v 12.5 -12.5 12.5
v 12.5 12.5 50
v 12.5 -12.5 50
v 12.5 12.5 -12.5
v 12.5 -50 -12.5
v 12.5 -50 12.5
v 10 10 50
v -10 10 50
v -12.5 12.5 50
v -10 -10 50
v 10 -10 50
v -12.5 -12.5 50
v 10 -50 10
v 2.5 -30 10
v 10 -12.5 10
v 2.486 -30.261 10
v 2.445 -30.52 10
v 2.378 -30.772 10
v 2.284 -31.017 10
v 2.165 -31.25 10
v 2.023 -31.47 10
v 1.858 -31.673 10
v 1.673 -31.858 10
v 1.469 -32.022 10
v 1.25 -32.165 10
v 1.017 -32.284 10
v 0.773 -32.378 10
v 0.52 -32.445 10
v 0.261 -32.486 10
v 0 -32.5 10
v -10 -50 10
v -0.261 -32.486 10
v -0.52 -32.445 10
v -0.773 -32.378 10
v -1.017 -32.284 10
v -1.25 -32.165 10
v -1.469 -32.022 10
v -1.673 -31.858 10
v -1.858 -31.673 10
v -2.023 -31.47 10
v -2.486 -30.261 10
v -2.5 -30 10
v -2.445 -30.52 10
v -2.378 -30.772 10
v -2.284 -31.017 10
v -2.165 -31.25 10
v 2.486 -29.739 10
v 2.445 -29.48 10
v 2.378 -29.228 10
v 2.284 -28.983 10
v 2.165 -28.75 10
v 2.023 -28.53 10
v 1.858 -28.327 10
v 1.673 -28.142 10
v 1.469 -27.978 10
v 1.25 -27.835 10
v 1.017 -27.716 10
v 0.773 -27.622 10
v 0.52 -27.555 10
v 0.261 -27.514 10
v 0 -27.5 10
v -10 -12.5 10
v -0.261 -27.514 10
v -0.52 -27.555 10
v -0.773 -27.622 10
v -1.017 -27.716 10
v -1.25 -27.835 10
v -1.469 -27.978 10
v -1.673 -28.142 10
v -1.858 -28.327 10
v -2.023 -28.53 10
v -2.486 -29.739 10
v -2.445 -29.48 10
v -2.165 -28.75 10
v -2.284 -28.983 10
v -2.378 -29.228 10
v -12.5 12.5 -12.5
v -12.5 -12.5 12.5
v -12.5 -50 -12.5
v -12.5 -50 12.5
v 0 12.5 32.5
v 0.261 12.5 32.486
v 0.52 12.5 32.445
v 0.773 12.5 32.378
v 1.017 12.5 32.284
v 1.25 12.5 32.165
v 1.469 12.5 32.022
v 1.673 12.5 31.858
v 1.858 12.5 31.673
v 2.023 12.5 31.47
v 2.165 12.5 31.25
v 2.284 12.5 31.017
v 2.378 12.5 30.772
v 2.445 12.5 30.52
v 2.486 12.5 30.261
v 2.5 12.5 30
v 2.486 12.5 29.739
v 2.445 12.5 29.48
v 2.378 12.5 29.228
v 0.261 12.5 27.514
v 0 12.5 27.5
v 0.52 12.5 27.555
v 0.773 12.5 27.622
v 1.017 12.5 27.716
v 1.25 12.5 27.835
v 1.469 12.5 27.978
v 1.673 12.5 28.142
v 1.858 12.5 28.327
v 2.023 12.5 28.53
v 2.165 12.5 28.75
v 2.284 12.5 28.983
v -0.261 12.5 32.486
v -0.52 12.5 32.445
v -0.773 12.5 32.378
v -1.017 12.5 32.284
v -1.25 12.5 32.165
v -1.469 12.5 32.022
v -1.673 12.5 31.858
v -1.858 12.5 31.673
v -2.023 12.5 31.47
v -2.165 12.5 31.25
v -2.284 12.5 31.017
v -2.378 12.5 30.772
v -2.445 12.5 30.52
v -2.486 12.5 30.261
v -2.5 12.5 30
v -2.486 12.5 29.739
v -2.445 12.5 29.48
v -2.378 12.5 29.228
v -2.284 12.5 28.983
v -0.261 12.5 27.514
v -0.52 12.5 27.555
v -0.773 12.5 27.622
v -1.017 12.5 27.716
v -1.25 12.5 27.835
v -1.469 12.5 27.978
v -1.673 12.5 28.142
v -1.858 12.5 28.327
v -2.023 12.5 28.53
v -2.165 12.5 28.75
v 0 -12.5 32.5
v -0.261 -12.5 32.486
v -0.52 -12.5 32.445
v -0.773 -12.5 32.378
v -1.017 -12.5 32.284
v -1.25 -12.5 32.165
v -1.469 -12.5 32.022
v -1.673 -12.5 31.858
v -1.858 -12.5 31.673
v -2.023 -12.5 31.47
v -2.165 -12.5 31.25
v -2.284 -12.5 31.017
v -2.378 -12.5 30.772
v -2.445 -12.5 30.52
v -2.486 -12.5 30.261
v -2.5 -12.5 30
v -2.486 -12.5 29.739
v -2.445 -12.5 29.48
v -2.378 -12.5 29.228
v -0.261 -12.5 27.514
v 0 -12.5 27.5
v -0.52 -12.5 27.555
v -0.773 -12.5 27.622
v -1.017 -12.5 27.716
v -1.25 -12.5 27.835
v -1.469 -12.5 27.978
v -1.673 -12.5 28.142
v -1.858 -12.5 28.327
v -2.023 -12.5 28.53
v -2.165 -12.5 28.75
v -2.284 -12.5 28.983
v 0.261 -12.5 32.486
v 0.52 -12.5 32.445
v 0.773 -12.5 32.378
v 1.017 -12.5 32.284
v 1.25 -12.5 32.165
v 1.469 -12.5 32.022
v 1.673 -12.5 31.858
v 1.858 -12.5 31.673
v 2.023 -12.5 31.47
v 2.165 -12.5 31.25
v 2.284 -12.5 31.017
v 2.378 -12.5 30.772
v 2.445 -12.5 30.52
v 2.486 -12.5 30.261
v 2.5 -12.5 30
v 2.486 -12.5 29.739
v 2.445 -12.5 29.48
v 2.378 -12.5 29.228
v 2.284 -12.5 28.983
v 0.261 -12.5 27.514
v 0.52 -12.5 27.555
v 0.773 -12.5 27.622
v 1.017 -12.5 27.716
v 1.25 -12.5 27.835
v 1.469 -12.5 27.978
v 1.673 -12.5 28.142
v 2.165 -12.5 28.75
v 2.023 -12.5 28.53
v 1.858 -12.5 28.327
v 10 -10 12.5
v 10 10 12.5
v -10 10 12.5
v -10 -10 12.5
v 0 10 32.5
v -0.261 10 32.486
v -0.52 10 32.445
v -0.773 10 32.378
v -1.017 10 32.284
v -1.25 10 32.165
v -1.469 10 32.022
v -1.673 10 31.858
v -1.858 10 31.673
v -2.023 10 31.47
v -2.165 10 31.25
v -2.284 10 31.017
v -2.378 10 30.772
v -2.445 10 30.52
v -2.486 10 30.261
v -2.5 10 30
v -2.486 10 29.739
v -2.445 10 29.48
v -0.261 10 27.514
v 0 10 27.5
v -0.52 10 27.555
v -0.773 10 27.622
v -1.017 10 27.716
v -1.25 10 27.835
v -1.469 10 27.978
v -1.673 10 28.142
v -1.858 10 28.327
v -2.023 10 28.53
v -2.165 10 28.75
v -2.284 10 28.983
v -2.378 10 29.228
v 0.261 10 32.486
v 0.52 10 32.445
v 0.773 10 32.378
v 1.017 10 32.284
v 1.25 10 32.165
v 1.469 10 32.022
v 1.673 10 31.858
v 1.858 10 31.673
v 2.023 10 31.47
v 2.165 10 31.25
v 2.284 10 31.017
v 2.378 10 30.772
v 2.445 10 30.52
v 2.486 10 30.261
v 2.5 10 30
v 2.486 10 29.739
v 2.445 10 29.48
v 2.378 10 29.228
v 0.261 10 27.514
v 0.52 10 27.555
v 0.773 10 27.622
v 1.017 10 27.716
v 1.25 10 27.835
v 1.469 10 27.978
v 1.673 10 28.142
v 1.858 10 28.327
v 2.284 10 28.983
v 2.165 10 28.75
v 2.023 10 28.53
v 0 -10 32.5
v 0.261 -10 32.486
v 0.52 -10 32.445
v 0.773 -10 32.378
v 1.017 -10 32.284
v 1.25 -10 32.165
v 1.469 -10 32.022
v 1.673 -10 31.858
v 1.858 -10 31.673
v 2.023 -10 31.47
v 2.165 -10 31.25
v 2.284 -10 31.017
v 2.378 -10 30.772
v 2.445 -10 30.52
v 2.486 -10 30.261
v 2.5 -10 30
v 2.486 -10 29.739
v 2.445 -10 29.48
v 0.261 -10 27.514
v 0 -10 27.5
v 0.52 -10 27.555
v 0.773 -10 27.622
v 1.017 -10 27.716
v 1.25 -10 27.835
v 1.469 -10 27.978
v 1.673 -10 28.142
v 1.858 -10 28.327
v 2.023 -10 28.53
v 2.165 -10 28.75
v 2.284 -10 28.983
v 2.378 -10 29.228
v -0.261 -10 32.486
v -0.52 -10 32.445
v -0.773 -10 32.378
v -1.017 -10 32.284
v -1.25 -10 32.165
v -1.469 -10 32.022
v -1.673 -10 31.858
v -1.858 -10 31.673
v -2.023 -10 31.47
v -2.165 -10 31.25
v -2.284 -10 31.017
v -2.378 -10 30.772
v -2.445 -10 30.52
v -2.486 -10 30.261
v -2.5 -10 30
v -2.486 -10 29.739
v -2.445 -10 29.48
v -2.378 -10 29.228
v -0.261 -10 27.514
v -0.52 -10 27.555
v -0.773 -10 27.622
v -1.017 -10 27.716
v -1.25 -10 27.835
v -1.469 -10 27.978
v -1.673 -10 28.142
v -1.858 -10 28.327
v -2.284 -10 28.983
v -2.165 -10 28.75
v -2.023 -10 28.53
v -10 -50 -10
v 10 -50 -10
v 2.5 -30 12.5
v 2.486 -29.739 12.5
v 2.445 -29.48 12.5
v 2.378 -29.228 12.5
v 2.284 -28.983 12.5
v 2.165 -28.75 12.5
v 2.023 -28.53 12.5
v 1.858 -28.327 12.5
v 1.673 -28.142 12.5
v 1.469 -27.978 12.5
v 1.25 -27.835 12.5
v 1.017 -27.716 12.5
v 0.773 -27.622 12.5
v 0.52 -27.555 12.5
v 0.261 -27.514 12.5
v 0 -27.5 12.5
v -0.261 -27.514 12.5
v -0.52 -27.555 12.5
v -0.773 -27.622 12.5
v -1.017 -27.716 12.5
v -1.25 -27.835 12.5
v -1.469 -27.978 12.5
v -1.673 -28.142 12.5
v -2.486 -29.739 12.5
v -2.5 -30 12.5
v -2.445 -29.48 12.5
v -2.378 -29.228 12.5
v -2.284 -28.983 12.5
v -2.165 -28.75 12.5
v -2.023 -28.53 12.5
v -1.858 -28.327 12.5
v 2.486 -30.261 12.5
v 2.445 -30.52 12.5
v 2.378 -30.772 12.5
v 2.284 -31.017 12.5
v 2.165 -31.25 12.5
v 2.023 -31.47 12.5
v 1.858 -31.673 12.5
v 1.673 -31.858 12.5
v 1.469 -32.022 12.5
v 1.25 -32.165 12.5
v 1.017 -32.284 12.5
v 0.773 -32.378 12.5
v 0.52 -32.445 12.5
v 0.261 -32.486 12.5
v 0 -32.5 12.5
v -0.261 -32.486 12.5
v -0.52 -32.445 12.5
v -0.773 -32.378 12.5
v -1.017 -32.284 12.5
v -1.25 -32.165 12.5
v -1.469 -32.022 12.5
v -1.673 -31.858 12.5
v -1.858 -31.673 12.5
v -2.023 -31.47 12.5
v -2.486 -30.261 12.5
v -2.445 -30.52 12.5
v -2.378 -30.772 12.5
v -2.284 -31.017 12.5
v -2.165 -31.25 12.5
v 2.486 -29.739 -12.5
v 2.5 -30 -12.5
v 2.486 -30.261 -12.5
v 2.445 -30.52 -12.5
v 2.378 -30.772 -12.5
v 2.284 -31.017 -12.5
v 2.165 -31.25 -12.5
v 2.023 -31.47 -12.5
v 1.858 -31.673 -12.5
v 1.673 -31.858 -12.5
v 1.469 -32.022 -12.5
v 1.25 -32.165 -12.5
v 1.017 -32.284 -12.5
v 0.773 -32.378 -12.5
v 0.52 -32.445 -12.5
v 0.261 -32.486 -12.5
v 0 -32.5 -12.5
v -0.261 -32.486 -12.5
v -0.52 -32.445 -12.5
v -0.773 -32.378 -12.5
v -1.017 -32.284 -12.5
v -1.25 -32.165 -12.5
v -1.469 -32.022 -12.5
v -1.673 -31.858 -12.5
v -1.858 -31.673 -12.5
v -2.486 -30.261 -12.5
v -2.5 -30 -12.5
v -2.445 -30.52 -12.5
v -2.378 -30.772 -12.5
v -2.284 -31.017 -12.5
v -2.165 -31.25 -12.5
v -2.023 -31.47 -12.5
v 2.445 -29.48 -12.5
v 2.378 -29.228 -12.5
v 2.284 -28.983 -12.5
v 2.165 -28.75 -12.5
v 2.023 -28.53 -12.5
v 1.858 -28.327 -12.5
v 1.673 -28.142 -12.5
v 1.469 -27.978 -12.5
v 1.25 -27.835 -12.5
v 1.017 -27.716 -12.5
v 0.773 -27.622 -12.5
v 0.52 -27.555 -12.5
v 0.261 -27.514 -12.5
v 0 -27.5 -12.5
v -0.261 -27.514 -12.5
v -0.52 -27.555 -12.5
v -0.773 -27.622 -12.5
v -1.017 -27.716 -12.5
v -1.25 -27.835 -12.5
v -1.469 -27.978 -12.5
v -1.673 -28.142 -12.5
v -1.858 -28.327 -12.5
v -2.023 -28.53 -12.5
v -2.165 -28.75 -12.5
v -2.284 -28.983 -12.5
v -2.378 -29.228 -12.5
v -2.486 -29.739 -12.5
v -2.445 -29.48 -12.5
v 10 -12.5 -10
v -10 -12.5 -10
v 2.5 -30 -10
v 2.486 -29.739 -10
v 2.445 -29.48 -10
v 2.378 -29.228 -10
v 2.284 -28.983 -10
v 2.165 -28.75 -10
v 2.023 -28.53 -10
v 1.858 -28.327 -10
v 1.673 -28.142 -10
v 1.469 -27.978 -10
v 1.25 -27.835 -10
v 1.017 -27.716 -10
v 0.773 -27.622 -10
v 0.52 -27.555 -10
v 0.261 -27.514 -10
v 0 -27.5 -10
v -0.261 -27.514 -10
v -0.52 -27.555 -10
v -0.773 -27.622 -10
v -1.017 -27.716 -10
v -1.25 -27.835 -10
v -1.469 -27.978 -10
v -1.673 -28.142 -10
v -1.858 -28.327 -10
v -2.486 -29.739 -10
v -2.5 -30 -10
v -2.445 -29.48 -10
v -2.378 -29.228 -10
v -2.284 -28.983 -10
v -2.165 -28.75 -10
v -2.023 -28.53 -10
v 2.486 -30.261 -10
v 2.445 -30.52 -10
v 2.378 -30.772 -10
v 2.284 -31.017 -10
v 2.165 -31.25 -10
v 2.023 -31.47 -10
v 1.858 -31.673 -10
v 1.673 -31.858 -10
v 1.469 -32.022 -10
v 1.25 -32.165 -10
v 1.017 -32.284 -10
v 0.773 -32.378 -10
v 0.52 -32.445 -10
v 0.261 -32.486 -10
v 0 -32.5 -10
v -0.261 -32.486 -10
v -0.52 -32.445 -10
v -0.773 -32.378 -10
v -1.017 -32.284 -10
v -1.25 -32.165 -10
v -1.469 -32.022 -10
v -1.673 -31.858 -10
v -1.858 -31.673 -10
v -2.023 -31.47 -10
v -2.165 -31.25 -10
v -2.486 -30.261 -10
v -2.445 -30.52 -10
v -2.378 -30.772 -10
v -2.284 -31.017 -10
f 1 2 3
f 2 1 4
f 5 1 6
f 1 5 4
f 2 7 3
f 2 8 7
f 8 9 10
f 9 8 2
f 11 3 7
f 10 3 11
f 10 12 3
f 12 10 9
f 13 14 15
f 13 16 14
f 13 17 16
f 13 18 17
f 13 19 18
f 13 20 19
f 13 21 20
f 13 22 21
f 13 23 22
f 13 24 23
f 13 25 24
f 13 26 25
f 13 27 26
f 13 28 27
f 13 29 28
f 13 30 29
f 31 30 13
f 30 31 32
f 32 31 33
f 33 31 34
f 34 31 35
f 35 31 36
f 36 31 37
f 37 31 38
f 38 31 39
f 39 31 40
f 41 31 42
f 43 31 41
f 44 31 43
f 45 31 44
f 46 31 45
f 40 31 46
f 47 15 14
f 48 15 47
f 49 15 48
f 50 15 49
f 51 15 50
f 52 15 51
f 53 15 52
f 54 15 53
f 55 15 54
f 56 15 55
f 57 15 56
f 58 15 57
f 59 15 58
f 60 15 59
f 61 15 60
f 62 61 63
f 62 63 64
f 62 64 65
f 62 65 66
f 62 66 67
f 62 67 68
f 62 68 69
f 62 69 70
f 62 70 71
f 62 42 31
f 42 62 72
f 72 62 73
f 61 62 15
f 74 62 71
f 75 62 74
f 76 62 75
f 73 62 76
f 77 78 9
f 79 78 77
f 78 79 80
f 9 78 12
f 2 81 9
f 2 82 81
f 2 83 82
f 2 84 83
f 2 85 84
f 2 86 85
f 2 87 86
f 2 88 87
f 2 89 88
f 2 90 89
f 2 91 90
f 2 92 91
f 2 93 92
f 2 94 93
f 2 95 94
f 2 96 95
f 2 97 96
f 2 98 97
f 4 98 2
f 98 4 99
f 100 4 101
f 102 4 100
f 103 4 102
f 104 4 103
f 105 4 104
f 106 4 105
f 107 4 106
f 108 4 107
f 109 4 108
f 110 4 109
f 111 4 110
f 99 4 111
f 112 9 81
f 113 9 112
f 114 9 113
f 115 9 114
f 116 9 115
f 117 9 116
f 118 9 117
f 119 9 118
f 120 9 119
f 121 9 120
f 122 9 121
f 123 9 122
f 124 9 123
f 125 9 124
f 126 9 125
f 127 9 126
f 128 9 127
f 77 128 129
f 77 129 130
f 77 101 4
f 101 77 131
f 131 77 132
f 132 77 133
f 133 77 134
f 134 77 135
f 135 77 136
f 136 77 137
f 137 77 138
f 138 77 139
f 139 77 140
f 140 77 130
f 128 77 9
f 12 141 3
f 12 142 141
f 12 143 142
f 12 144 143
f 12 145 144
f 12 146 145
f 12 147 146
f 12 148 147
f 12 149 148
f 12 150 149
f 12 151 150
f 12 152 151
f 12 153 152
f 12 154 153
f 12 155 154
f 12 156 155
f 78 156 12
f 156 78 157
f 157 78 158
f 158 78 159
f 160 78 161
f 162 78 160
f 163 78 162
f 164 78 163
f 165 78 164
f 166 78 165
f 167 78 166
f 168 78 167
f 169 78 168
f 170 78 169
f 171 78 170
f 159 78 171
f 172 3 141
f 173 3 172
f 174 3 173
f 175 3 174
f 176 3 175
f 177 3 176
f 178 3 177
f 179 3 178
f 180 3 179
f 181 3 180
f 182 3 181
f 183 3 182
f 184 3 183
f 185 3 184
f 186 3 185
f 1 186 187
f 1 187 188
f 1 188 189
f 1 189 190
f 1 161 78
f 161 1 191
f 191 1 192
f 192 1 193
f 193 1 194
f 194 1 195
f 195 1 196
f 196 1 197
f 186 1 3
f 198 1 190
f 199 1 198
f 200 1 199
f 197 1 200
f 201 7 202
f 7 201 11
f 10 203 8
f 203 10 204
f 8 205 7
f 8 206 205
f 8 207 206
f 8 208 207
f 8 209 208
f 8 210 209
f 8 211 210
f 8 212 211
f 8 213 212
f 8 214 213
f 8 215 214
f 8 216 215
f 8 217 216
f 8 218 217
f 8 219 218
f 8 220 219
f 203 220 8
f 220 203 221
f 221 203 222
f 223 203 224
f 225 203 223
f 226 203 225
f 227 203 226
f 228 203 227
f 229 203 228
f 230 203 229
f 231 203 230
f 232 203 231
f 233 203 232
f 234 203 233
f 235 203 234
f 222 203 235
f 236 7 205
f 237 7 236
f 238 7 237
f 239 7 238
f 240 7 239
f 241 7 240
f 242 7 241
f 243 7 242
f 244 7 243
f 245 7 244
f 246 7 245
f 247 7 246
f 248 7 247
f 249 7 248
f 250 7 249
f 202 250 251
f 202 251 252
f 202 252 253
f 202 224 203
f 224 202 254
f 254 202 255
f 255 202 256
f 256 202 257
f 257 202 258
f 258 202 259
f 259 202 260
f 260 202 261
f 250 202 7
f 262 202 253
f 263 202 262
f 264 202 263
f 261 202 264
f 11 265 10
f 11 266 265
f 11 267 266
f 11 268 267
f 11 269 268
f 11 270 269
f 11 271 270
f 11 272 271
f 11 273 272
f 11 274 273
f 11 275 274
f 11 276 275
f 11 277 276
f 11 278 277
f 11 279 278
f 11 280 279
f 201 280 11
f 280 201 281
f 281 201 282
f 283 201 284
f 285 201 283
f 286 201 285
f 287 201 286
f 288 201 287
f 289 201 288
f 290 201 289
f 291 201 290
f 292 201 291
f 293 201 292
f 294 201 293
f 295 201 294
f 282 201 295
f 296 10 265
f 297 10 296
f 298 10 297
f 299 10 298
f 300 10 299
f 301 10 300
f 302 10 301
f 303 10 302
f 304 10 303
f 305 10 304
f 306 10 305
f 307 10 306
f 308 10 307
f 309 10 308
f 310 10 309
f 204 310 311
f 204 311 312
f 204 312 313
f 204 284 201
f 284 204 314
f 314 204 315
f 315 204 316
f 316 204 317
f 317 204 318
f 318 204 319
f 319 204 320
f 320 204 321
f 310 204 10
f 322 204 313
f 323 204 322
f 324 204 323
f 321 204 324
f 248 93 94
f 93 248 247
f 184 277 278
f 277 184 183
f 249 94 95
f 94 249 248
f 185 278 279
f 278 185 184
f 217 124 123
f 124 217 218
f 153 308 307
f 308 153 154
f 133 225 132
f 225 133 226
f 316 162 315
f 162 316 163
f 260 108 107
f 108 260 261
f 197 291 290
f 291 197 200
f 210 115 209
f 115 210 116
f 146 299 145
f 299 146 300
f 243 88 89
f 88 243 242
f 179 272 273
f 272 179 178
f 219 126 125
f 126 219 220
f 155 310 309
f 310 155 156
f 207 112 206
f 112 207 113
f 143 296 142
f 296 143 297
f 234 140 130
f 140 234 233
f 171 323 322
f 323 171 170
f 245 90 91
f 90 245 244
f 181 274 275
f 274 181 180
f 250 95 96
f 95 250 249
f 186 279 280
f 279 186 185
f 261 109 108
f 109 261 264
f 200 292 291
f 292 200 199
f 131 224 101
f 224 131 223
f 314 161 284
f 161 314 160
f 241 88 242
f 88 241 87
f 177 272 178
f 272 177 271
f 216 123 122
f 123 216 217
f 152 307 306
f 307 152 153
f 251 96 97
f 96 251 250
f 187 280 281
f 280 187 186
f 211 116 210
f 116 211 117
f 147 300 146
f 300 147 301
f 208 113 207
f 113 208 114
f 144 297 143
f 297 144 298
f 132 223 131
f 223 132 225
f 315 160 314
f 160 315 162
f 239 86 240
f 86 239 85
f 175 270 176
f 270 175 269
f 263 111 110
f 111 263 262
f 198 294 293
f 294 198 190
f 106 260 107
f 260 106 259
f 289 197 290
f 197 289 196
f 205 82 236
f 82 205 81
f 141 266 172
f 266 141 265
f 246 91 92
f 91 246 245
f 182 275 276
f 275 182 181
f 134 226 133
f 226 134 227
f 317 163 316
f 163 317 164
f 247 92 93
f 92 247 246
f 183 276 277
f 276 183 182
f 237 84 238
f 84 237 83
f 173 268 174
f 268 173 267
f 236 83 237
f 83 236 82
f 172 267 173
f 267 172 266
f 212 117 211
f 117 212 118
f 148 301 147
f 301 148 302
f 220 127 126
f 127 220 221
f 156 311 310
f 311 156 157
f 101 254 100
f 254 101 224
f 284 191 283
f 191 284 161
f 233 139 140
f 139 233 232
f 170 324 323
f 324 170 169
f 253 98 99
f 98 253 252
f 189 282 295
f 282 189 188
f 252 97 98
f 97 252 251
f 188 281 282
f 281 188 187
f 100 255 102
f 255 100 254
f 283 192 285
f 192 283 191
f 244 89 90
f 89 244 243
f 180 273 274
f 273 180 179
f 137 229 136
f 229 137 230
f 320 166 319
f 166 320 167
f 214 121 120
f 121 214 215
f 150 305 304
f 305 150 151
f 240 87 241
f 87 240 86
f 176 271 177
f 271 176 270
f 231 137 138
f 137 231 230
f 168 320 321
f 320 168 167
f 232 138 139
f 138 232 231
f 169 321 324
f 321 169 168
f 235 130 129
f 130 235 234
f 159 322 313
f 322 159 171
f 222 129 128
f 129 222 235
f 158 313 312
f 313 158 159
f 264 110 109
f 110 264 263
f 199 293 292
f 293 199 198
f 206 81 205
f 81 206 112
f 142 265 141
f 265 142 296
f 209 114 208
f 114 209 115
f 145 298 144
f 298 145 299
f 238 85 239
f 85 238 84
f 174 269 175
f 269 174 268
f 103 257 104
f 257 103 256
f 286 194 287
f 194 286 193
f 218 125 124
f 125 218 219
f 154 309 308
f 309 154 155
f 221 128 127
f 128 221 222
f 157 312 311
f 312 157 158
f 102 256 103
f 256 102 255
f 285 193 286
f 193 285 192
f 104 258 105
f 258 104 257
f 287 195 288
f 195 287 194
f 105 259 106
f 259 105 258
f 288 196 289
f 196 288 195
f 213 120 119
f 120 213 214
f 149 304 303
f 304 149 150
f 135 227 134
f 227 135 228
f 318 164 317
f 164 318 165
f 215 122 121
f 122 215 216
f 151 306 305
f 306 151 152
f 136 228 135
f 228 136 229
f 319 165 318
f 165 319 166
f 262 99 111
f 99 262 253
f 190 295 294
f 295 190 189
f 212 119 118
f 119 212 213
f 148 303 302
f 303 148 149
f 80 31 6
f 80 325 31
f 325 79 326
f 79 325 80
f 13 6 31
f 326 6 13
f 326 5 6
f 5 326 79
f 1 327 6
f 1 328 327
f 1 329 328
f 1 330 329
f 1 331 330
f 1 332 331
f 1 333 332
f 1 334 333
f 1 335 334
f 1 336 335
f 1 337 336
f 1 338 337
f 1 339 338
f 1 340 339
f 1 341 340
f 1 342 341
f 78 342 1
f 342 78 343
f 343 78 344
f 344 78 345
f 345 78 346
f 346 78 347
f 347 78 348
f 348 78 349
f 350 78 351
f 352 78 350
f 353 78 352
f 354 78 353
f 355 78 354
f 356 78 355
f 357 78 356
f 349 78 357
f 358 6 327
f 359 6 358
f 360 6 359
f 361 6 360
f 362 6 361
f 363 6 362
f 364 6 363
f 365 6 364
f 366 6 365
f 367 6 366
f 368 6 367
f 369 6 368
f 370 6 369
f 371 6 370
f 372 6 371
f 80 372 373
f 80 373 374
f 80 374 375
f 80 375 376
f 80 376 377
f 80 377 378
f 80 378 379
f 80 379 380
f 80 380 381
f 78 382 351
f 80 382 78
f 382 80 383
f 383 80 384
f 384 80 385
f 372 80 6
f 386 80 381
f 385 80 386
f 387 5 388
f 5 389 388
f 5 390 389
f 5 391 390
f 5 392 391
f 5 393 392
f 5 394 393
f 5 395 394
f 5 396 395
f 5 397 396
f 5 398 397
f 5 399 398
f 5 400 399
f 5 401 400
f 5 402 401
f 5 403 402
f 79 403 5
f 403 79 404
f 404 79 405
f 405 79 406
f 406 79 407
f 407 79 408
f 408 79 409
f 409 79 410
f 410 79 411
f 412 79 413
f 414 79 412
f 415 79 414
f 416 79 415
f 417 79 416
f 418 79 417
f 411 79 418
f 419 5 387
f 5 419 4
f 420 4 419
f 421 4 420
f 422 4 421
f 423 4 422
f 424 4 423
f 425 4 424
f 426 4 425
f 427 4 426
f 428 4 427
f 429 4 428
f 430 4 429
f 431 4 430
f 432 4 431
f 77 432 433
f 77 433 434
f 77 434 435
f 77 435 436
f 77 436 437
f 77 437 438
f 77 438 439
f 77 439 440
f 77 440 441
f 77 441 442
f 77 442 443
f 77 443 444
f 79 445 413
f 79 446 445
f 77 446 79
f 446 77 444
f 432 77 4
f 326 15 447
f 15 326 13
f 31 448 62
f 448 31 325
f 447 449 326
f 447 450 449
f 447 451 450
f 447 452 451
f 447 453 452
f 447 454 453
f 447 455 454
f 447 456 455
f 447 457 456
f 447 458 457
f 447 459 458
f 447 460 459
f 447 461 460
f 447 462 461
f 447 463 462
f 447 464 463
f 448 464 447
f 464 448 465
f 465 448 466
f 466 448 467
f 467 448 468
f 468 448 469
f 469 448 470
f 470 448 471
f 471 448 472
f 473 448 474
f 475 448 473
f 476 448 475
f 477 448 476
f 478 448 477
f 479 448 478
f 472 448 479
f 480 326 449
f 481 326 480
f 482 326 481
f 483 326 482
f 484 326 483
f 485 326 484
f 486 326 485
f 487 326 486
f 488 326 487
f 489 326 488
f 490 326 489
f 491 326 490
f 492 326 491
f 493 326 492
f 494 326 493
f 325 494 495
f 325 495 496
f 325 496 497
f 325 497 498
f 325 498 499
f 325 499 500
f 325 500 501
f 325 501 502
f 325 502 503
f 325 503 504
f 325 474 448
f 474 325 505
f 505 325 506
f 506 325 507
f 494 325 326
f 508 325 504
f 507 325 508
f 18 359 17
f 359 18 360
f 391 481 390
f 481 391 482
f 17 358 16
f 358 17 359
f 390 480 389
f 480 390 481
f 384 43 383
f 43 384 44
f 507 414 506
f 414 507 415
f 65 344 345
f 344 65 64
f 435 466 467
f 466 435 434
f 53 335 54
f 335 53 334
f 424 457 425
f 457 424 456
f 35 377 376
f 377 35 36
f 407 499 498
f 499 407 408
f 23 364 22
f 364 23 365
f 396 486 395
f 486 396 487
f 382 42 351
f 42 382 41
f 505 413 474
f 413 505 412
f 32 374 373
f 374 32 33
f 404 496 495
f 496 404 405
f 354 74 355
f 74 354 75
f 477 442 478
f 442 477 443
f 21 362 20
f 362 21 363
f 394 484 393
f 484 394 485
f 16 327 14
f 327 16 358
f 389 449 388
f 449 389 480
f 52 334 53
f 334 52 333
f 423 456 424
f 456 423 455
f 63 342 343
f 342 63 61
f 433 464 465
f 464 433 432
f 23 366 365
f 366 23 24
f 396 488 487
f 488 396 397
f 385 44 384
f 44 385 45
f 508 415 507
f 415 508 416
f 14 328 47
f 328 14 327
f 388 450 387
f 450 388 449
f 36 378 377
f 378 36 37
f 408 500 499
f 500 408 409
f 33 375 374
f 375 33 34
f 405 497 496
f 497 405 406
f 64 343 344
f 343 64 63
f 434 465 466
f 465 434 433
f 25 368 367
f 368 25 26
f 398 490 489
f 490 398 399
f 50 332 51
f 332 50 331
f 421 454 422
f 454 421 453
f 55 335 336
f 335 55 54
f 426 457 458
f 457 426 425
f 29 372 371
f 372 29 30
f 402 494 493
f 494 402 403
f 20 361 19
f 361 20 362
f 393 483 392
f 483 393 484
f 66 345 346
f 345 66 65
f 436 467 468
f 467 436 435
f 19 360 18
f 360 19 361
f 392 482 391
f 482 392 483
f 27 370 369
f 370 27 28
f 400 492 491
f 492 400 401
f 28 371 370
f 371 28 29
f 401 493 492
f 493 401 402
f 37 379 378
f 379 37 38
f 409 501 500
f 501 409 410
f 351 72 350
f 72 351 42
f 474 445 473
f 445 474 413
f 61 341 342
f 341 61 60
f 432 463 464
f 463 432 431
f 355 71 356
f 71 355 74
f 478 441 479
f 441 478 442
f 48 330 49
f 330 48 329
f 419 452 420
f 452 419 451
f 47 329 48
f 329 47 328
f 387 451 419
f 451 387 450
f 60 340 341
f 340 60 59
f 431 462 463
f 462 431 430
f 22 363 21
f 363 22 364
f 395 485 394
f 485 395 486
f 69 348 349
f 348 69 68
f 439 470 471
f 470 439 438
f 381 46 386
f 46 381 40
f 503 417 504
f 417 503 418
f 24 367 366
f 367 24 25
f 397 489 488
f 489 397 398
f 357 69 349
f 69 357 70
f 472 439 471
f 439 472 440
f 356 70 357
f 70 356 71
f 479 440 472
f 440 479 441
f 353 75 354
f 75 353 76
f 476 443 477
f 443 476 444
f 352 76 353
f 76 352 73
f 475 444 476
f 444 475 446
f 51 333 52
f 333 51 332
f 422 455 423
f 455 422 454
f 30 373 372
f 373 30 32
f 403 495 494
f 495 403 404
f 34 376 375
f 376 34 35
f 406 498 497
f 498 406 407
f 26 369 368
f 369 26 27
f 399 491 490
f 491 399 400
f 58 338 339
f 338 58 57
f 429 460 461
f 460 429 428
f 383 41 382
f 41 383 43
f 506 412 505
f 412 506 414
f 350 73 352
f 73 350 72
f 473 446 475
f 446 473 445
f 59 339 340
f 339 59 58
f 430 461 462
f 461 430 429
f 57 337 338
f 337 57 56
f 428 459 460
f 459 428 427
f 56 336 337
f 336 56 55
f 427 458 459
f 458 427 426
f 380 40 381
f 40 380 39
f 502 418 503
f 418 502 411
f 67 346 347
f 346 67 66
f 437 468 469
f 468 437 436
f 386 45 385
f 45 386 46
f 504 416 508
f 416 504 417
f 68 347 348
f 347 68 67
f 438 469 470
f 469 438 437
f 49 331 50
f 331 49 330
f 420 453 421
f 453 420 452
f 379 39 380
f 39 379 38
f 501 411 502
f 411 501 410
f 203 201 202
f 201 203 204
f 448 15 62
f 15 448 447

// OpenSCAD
// Jacob McKenna
// UAF CS 600 Robotics
// Gantry Mount
$fn = 60;

module Fillet(){
    offset(-1.4) offset(1.4) children();
}

module Smooth(){
    offset(.5) offset(-.5) children();
}






module GantryMount(){
    
    module ExtrusionSlot(){
        cutOutwidth = 25;
        height = 40;
        perimeterWidth = cutOutwidth - 5;
        translate([0,0,height/2]) difference(){
            cube([cutOutwidth,cutOutwidth,height], center=true);
            cube([perimeterWidth,perimeterWidth,height], center=true);
            rotate([90,0,0]) cylinder(r=2.5, h= 100, center=true);
        }
    }

    translate([0,0,10]) ExtrusionSlot();
    translate([0,-10,0]) rotate([90,0,0]) ExtrusionSlot();
    cube([25,25,25], center=true);
    
}


GantryMount();
